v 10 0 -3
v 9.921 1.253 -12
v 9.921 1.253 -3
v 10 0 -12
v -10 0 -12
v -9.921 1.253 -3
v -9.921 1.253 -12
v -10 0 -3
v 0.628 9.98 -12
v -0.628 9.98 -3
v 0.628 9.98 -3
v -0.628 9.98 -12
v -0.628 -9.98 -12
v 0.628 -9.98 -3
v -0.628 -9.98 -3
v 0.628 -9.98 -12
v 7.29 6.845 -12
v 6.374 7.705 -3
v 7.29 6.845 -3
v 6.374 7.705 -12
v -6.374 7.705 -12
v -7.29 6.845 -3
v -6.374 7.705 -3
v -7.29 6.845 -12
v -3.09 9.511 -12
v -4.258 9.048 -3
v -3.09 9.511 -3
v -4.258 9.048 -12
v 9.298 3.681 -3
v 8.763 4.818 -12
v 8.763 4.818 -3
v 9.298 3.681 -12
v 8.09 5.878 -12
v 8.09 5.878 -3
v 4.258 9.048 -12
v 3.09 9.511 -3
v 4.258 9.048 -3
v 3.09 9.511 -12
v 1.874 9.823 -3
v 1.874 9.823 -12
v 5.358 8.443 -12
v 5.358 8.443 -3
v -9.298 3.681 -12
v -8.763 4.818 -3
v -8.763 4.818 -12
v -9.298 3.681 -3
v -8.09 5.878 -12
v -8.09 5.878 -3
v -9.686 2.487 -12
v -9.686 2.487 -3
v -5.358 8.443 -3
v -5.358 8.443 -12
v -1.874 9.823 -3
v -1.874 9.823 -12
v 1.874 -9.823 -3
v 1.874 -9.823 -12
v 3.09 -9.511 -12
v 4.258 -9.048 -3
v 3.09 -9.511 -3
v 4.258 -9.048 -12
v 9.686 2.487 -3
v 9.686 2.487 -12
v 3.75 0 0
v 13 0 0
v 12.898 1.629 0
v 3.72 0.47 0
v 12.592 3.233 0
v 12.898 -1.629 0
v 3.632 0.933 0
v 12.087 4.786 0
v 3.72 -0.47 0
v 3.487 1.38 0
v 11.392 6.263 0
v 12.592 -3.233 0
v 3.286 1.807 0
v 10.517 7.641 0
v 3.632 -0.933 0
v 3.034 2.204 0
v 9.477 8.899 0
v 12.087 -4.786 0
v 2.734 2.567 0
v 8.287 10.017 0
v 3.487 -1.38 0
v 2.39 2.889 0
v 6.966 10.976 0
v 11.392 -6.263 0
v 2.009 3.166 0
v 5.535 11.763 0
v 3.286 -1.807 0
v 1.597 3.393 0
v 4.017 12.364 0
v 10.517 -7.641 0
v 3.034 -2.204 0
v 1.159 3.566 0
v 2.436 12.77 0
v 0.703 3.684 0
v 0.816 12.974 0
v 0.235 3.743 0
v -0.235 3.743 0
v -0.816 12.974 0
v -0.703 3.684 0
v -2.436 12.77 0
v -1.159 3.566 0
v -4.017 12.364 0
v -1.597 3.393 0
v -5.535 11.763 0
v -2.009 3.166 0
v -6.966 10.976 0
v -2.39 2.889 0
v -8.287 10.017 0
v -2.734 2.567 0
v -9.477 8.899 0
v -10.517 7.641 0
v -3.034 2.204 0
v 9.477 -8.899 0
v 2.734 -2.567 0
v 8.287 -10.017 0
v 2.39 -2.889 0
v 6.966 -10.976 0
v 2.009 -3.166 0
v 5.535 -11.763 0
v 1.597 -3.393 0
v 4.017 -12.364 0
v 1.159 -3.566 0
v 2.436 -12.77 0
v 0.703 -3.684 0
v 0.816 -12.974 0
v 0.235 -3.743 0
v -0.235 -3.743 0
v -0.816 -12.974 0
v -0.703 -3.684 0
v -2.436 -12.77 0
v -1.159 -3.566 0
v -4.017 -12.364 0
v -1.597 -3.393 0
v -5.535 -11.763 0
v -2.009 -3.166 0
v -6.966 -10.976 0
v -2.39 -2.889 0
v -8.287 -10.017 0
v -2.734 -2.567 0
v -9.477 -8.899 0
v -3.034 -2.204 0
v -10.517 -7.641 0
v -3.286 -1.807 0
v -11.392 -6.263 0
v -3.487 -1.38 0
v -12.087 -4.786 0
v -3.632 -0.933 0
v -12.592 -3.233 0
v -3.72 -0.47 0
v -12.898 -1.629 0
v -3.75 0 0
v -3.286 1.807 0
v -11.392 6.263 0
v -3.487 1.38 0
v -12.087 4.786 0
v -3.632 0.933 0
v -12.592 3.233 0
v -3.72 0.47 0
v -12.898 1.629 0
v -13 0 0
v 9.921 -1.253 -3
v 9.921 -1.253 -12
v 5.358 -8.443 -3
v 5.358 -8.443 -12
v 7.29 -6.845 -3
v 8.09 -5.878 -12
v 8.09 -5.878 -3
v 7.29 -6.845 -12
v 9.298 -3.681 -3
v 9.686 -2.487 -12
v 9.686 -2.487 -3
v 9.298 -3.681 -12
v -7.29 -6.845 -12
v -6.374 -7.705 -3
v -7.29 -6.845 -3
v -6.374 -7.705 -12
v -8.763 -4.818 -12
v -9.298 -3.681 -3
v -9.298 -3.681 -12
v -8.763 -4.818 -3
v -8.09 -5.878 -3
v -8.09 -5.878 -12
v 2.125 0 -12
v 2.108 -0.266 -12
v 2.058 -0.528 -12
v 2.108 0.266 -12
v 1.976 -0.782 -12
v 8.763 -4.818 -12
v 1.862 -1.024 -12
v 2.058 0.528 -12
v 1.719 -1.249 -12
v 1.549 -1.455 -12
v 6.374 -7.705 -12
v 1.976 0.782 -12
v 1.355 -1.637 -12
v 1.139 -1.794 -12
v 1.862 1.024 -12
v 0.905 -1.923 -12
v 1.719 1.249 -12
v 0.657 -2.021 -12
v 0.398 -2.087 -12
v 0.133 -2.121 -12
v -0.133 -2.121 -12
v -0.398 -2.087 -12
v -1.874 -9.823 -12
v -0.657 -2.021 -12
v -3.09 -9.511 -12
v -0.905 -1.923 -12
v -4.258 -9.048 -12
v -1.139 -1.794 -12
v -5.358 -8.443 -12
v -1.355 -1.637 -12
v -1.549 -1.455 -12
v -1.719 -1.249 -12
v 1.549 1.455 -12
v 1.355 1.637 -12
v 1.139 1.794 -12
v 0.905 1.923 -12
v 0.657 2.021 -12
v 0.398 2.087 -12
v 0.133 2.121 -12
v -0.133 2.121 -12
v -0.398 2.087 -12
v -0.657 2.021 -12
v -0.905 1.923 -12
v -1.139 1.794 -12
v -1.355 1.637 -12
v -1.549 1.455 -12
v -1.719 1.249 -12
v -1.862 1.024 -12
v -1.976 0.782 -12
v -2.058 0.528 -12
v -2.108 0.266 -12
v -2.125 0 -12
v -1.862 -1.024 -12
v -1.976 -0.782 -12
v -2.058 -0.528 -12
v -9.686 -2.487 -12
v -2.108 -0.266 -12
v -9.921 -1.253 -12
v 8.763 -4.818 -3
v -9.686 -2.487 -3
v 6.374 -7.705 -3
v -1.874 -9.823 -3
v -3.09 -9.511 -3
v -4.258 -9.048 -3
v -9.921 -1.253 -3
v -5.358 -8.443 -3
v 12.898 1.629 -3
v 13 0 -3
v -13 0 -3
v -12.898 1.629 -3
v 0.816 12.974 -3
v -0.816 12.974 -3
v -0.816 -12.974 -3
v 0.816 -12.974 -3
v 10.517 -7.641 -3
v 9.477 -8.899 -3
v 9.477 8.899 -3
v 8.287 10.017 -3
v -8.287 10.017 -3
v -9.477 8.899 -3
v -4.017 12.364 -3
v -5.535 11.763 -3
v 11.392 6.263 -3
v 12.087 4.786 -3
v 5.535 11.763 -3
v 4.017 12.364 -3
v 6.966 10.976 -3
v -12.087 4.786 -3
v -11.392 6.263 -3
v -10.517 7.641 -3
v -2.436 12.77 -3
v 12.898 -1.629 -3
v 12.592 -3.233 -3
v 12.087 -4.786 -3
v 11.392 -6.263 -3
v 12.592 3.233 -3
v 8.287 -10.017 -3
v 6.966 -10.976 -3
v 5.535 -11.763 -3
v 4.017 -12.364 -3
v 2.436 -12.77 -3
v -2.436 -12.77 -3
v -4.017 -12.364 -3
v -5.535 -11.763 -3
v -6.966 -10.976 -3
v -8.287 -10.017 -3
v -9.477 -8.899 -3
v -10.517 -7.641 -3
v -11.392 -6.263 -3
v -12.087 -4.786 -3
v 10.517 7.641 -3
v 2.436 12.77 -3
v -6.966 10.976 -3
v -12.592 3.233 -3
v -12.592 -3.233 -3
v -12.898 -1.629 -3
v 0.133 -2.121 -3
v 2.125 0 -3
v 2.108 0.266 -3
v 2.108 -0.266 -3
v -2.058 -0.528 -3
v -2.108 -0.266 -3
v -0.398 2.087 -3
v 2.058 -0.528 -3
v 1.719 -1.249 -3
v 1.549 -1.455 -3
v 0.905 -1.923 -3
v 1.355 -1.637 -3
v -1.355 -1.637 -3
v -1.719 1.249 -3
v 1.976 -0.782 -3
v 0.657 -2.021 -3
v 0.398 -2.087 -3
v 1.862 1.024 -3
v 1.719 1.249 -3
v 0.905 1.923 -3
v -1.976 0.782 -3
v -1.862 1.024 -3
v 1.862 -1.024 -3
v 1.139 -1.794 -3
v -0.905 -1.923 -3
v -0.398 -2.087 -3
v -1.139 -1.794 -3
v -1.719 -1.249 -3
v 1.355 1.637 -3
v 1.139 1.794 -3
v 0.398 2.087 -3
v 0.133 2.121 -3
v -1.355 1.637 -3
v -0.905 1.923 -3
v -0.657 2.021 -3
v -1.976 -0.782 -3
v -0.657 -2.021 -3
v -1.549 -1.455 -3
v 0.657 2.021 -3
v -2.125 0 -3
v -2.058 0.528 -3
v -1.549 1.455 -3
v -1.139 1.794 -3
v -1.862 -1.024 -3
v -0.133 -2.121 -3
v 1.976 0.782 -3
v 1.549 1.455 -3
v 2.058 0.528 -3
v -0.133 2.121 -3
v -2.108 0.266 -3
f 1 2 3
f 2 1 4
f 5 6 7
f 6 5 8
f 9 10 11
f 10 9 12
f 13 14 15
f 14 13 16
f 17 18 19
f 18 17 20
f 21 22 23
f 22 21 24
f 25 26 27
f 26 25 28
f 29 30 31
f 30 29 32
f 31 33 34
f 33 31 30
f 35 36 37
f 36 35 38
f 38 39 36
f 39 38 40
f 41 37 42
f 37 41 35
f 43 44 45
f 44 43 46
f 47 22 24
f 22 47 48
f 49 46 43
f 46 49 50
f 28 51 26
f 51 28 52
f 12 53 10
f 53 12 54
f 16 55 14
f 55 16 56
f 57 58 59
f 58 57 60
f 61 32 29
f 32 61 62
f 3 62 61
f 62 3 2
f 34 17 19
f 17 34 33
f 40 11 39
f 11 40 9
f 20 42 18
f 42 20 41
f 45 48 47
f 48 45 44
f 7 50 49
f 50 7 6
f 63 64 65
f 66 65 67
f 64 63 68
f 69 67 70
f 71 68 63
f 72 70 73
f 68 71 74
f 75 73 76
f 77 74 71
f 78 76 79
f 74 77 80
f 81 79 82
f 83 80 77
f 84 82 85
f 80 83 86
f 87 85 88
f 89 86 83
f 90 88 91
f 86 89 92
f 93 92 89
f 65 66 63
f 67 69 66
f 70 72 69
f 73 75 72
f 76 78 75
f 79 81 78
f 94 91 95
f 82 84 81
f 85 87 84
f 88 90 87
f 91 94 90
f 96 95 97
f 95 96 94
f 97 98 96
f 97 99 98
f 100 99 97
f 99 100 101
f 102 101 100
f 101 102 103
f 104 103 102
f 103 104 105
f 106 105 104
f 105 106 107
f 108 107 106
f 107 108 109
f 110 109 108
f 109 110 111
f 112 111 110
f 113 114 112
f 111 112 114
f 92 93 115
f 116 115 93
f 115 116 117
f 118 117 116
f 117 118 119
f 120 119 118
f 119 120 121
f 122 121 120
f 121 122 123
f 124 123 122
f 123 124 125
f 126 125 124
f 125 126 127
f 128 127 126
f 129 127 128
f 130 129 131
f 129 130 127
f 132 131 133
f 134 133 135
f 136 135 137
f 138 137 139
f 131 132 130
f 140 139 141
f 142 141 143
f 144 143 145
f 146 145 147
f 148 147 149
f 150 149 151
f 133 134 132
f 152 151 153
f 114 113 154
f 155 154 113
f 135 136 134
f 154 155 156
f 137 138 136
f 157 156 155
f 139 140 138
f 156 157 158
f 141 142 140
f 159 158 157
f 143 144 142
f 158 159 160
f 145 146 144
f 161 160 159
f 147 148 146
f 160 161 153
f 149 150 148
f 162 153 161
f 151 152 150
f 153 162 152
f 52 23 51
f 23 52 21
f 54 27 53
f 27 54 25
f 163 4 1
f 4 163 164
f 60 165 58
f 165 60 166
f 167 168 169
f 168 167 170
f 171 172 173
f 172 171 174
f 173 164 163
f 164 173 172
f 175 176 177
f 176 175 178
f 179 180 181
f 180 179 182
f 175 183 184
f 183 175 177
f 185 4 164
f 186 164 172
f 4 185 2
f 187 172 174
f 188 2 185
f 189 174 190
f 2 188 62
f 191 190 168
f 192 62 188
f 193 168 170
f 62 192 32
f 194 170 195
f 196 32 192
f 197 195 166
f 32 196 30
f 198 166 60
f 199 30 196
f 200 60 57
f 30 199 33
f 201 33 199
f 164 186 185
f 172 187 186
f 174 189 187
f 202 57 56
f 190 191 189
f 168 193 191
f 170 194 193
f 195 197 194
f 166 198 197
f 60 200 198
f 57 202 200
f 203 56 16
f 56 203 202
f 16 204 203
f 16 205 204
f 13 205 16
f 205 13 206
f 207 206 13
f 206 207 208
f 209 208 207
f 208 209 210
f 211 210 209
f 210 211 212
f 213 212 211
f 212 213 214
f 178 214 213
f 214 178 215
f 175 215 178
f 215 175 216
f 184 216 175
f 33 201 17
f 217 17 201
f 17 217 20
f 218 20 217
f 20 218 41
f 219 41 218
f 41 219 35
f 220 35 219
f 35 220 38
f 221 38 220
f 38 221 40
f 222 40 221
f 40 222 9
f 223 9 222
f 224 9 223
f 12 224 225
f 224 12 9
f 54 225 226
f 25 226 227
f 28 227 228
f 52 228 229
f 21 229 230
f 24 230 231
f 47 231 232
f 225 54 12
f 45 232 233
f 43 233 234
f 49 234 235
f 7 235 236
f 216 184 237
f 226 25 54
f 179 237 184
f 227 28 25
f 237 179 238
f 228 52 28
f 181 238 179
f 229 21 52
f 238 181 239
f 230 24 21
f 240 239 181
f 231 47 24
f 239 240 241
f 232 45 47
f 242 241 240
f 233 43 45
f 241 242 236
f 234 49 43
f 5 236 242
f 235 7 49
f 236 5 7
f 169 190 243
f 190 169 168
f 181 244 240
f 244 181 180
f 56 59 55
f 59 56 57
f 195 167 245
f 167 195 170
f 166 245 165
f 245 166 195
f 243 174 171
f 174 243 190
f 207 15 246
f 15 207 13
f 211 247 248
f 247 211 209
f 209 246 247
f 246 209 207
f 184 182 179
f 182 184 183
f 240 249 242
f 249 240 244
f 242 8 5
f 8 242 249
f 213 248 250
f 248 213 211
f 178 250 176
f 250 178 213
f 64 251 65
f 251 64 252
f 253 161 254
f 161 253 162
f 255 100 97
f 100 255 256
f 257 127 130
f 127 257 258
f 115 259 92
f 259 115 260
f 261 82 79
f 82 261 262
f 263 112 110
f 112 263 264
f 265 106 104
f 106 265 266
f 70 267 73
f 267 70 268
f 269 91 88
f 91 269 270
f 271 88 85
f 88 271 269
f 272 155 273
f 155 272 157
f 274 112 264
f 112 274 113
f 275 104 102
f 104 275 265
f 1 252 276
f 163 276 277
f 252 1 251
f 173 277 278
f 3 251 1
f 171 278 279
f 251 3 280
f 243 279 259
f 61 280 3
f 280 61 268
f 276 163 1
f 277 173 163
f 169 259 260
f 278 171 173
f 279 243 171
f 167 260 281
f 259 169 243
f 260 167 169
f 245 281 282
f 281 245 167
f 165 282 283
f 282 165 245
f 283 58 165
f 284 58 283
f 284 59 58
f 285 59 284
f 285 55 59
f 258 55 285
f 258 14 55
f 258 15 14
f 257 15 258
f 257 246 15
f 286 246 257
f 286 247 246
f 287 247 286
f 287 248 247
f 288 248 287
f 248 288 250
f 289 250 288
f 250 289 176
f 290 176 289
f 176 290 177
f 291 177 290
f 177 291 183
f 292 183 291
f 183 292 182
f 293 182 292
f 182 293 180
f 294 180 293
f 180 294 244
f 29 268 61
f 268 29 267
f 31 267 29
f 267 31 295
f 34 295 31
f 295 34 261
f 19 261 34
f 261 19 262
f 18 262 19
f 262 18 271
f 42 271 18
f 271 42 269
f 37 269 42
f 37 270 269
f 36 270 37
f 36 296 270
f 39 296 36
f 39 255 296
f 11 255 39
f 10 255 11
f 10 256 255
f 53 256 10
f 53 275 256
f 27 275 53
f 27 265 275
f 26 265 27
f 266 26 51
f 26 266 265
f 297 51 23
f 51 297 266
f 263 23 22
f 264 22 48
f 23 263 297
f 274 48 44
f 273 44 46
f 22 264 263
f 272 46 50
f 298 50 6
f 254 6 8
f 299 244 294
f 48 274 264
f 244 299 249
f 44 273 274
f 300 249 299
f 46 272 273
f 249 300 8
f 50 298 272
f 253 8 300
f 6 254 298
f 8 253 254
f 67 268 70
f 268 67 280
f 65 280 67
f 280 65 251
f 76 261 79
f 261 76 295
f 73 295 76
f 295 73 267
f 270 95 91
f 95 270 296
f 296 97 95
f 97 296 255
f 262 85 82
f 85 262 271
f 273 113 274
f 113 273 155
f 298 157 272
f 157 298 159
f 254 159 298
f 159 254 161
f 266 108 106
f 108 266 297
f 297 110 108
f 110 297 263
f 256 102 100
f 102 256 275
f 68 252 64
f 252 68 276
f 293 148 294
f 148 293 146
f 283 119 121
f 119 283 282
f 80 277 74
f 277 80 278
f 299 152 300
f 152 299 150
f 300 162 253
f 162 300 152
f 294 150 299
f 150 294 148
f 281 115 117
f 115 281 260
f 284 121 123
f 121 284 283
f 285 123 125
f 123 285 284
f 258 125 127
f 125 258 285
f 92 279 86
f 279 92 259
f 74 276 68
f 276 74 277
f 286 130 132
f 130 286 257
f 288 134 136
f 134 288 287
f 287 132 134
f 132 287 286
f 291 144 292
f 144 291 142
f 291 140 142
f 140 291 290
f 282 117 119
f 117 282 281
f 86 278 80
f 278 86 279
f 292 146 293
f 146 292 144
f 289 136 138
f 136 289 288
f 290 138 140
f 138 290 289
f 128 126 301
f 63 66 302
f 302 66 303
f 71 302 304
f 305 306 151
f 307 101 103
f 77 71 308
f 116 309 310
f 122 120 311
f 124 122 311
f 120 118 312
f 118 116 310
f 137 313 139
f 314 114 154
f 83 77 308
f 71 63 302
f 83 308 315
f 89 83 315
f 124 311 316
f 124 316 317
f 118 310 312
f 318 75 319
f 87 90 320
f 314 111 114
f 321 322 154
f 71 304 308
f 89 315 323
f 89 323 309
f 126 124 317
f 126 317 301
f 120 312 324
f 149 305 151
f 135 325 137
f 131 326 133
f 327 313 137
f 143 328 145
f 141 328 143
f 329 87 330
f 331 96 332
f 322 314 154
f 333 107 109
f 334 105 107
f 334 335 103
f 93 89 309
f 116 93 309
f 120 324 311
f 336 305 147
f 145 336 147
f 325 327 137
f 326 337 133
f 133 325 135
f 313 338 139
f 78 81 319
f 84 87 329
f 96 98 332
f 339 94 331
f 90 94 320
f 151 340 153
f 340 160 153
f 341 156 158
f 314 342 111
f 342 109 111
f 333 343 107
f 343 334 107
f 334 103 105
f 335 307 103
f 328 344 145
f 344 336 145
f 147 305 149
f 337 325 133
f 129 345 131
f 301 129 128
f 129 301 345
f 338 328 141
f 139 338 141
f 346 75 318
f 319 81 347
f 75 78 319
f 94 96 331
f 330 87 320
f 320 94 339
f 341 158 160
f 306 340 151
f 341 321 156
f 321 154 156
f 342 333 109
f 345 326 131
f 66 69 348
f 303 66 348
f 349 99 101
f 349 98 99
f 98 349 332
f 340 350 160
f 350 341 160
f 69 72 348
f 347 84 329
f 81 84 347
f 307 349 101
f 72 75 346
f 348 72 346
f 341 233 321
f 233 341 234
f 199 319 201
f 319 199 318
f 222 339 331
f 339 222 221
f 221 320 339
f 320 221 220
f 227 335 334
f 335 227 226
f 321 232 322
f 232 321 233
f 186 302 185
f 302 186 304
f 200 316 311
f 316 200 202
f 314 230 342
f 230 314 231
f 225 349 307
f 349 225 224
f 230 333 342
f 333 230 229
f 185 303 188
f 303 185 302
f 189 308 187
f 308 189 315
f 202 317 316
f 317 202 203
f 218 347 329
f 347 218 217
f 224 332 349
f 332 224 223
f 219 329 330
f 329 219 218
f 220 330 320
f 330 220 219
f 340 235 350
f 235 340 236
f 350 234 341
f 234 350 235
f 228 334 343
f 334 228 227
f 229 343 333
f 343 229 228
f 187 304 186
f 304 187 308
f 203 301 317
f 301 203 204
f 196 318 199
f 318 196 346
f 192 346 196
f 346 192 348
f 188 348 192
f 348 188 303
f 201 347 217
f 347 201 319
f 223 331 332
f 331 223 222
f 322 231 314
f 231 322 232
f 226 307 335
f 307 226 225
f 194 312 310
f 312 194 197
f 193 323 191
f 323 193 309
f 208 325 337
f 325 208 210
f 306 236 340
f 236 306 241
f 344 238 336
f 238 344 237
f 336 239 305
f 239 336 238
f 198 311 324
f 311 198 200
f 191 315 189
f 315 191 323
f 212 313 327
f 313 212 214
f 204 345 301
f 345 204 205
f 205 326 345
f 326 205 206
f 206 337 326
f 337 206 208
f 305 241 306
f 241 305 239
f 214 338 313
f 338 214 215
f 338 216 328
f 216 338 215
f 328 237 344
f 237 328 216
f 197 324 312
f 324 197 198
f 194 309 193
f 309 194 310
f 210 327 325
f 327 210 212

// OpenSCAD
$fn = 50;


difference() {
	union() {
		translate(v = [0, 0, -12.0000000000]) {
			cylinder(h = 12, r = 10.0000000000);
		}
		translate(v = [0, 0, -3.0000000000]) {
			cylinder(h = 3, r = 13.0000000000);
		}
	}
	union() {
		translate(v = [0, 0, 0]) {
			rotate(a = [0, 0, 0]) {
				difference() {
					union() {
						#translate(v = [0, 0, -12.0000000000]) {
							cylinder(h = 12, r = 2.0000000000);
						}
						#translate(v = [0, 0, -3]) {
							cylinder(h = 3, r = 10.0000000000, r1 = 2.1250000000, r2 = 3.7500000000);
						}
						#translate(v = [0, 0, -12.0000000000]) {
							cylinder(h = 12, r = 2.1250000000);
						}
						#translate(v = [0, 0, -12.0000000000]) {
							cylinder(h = 12, r = 2.0000000000);
						}
					}
					union();
				}
			}
		}
	}
}
